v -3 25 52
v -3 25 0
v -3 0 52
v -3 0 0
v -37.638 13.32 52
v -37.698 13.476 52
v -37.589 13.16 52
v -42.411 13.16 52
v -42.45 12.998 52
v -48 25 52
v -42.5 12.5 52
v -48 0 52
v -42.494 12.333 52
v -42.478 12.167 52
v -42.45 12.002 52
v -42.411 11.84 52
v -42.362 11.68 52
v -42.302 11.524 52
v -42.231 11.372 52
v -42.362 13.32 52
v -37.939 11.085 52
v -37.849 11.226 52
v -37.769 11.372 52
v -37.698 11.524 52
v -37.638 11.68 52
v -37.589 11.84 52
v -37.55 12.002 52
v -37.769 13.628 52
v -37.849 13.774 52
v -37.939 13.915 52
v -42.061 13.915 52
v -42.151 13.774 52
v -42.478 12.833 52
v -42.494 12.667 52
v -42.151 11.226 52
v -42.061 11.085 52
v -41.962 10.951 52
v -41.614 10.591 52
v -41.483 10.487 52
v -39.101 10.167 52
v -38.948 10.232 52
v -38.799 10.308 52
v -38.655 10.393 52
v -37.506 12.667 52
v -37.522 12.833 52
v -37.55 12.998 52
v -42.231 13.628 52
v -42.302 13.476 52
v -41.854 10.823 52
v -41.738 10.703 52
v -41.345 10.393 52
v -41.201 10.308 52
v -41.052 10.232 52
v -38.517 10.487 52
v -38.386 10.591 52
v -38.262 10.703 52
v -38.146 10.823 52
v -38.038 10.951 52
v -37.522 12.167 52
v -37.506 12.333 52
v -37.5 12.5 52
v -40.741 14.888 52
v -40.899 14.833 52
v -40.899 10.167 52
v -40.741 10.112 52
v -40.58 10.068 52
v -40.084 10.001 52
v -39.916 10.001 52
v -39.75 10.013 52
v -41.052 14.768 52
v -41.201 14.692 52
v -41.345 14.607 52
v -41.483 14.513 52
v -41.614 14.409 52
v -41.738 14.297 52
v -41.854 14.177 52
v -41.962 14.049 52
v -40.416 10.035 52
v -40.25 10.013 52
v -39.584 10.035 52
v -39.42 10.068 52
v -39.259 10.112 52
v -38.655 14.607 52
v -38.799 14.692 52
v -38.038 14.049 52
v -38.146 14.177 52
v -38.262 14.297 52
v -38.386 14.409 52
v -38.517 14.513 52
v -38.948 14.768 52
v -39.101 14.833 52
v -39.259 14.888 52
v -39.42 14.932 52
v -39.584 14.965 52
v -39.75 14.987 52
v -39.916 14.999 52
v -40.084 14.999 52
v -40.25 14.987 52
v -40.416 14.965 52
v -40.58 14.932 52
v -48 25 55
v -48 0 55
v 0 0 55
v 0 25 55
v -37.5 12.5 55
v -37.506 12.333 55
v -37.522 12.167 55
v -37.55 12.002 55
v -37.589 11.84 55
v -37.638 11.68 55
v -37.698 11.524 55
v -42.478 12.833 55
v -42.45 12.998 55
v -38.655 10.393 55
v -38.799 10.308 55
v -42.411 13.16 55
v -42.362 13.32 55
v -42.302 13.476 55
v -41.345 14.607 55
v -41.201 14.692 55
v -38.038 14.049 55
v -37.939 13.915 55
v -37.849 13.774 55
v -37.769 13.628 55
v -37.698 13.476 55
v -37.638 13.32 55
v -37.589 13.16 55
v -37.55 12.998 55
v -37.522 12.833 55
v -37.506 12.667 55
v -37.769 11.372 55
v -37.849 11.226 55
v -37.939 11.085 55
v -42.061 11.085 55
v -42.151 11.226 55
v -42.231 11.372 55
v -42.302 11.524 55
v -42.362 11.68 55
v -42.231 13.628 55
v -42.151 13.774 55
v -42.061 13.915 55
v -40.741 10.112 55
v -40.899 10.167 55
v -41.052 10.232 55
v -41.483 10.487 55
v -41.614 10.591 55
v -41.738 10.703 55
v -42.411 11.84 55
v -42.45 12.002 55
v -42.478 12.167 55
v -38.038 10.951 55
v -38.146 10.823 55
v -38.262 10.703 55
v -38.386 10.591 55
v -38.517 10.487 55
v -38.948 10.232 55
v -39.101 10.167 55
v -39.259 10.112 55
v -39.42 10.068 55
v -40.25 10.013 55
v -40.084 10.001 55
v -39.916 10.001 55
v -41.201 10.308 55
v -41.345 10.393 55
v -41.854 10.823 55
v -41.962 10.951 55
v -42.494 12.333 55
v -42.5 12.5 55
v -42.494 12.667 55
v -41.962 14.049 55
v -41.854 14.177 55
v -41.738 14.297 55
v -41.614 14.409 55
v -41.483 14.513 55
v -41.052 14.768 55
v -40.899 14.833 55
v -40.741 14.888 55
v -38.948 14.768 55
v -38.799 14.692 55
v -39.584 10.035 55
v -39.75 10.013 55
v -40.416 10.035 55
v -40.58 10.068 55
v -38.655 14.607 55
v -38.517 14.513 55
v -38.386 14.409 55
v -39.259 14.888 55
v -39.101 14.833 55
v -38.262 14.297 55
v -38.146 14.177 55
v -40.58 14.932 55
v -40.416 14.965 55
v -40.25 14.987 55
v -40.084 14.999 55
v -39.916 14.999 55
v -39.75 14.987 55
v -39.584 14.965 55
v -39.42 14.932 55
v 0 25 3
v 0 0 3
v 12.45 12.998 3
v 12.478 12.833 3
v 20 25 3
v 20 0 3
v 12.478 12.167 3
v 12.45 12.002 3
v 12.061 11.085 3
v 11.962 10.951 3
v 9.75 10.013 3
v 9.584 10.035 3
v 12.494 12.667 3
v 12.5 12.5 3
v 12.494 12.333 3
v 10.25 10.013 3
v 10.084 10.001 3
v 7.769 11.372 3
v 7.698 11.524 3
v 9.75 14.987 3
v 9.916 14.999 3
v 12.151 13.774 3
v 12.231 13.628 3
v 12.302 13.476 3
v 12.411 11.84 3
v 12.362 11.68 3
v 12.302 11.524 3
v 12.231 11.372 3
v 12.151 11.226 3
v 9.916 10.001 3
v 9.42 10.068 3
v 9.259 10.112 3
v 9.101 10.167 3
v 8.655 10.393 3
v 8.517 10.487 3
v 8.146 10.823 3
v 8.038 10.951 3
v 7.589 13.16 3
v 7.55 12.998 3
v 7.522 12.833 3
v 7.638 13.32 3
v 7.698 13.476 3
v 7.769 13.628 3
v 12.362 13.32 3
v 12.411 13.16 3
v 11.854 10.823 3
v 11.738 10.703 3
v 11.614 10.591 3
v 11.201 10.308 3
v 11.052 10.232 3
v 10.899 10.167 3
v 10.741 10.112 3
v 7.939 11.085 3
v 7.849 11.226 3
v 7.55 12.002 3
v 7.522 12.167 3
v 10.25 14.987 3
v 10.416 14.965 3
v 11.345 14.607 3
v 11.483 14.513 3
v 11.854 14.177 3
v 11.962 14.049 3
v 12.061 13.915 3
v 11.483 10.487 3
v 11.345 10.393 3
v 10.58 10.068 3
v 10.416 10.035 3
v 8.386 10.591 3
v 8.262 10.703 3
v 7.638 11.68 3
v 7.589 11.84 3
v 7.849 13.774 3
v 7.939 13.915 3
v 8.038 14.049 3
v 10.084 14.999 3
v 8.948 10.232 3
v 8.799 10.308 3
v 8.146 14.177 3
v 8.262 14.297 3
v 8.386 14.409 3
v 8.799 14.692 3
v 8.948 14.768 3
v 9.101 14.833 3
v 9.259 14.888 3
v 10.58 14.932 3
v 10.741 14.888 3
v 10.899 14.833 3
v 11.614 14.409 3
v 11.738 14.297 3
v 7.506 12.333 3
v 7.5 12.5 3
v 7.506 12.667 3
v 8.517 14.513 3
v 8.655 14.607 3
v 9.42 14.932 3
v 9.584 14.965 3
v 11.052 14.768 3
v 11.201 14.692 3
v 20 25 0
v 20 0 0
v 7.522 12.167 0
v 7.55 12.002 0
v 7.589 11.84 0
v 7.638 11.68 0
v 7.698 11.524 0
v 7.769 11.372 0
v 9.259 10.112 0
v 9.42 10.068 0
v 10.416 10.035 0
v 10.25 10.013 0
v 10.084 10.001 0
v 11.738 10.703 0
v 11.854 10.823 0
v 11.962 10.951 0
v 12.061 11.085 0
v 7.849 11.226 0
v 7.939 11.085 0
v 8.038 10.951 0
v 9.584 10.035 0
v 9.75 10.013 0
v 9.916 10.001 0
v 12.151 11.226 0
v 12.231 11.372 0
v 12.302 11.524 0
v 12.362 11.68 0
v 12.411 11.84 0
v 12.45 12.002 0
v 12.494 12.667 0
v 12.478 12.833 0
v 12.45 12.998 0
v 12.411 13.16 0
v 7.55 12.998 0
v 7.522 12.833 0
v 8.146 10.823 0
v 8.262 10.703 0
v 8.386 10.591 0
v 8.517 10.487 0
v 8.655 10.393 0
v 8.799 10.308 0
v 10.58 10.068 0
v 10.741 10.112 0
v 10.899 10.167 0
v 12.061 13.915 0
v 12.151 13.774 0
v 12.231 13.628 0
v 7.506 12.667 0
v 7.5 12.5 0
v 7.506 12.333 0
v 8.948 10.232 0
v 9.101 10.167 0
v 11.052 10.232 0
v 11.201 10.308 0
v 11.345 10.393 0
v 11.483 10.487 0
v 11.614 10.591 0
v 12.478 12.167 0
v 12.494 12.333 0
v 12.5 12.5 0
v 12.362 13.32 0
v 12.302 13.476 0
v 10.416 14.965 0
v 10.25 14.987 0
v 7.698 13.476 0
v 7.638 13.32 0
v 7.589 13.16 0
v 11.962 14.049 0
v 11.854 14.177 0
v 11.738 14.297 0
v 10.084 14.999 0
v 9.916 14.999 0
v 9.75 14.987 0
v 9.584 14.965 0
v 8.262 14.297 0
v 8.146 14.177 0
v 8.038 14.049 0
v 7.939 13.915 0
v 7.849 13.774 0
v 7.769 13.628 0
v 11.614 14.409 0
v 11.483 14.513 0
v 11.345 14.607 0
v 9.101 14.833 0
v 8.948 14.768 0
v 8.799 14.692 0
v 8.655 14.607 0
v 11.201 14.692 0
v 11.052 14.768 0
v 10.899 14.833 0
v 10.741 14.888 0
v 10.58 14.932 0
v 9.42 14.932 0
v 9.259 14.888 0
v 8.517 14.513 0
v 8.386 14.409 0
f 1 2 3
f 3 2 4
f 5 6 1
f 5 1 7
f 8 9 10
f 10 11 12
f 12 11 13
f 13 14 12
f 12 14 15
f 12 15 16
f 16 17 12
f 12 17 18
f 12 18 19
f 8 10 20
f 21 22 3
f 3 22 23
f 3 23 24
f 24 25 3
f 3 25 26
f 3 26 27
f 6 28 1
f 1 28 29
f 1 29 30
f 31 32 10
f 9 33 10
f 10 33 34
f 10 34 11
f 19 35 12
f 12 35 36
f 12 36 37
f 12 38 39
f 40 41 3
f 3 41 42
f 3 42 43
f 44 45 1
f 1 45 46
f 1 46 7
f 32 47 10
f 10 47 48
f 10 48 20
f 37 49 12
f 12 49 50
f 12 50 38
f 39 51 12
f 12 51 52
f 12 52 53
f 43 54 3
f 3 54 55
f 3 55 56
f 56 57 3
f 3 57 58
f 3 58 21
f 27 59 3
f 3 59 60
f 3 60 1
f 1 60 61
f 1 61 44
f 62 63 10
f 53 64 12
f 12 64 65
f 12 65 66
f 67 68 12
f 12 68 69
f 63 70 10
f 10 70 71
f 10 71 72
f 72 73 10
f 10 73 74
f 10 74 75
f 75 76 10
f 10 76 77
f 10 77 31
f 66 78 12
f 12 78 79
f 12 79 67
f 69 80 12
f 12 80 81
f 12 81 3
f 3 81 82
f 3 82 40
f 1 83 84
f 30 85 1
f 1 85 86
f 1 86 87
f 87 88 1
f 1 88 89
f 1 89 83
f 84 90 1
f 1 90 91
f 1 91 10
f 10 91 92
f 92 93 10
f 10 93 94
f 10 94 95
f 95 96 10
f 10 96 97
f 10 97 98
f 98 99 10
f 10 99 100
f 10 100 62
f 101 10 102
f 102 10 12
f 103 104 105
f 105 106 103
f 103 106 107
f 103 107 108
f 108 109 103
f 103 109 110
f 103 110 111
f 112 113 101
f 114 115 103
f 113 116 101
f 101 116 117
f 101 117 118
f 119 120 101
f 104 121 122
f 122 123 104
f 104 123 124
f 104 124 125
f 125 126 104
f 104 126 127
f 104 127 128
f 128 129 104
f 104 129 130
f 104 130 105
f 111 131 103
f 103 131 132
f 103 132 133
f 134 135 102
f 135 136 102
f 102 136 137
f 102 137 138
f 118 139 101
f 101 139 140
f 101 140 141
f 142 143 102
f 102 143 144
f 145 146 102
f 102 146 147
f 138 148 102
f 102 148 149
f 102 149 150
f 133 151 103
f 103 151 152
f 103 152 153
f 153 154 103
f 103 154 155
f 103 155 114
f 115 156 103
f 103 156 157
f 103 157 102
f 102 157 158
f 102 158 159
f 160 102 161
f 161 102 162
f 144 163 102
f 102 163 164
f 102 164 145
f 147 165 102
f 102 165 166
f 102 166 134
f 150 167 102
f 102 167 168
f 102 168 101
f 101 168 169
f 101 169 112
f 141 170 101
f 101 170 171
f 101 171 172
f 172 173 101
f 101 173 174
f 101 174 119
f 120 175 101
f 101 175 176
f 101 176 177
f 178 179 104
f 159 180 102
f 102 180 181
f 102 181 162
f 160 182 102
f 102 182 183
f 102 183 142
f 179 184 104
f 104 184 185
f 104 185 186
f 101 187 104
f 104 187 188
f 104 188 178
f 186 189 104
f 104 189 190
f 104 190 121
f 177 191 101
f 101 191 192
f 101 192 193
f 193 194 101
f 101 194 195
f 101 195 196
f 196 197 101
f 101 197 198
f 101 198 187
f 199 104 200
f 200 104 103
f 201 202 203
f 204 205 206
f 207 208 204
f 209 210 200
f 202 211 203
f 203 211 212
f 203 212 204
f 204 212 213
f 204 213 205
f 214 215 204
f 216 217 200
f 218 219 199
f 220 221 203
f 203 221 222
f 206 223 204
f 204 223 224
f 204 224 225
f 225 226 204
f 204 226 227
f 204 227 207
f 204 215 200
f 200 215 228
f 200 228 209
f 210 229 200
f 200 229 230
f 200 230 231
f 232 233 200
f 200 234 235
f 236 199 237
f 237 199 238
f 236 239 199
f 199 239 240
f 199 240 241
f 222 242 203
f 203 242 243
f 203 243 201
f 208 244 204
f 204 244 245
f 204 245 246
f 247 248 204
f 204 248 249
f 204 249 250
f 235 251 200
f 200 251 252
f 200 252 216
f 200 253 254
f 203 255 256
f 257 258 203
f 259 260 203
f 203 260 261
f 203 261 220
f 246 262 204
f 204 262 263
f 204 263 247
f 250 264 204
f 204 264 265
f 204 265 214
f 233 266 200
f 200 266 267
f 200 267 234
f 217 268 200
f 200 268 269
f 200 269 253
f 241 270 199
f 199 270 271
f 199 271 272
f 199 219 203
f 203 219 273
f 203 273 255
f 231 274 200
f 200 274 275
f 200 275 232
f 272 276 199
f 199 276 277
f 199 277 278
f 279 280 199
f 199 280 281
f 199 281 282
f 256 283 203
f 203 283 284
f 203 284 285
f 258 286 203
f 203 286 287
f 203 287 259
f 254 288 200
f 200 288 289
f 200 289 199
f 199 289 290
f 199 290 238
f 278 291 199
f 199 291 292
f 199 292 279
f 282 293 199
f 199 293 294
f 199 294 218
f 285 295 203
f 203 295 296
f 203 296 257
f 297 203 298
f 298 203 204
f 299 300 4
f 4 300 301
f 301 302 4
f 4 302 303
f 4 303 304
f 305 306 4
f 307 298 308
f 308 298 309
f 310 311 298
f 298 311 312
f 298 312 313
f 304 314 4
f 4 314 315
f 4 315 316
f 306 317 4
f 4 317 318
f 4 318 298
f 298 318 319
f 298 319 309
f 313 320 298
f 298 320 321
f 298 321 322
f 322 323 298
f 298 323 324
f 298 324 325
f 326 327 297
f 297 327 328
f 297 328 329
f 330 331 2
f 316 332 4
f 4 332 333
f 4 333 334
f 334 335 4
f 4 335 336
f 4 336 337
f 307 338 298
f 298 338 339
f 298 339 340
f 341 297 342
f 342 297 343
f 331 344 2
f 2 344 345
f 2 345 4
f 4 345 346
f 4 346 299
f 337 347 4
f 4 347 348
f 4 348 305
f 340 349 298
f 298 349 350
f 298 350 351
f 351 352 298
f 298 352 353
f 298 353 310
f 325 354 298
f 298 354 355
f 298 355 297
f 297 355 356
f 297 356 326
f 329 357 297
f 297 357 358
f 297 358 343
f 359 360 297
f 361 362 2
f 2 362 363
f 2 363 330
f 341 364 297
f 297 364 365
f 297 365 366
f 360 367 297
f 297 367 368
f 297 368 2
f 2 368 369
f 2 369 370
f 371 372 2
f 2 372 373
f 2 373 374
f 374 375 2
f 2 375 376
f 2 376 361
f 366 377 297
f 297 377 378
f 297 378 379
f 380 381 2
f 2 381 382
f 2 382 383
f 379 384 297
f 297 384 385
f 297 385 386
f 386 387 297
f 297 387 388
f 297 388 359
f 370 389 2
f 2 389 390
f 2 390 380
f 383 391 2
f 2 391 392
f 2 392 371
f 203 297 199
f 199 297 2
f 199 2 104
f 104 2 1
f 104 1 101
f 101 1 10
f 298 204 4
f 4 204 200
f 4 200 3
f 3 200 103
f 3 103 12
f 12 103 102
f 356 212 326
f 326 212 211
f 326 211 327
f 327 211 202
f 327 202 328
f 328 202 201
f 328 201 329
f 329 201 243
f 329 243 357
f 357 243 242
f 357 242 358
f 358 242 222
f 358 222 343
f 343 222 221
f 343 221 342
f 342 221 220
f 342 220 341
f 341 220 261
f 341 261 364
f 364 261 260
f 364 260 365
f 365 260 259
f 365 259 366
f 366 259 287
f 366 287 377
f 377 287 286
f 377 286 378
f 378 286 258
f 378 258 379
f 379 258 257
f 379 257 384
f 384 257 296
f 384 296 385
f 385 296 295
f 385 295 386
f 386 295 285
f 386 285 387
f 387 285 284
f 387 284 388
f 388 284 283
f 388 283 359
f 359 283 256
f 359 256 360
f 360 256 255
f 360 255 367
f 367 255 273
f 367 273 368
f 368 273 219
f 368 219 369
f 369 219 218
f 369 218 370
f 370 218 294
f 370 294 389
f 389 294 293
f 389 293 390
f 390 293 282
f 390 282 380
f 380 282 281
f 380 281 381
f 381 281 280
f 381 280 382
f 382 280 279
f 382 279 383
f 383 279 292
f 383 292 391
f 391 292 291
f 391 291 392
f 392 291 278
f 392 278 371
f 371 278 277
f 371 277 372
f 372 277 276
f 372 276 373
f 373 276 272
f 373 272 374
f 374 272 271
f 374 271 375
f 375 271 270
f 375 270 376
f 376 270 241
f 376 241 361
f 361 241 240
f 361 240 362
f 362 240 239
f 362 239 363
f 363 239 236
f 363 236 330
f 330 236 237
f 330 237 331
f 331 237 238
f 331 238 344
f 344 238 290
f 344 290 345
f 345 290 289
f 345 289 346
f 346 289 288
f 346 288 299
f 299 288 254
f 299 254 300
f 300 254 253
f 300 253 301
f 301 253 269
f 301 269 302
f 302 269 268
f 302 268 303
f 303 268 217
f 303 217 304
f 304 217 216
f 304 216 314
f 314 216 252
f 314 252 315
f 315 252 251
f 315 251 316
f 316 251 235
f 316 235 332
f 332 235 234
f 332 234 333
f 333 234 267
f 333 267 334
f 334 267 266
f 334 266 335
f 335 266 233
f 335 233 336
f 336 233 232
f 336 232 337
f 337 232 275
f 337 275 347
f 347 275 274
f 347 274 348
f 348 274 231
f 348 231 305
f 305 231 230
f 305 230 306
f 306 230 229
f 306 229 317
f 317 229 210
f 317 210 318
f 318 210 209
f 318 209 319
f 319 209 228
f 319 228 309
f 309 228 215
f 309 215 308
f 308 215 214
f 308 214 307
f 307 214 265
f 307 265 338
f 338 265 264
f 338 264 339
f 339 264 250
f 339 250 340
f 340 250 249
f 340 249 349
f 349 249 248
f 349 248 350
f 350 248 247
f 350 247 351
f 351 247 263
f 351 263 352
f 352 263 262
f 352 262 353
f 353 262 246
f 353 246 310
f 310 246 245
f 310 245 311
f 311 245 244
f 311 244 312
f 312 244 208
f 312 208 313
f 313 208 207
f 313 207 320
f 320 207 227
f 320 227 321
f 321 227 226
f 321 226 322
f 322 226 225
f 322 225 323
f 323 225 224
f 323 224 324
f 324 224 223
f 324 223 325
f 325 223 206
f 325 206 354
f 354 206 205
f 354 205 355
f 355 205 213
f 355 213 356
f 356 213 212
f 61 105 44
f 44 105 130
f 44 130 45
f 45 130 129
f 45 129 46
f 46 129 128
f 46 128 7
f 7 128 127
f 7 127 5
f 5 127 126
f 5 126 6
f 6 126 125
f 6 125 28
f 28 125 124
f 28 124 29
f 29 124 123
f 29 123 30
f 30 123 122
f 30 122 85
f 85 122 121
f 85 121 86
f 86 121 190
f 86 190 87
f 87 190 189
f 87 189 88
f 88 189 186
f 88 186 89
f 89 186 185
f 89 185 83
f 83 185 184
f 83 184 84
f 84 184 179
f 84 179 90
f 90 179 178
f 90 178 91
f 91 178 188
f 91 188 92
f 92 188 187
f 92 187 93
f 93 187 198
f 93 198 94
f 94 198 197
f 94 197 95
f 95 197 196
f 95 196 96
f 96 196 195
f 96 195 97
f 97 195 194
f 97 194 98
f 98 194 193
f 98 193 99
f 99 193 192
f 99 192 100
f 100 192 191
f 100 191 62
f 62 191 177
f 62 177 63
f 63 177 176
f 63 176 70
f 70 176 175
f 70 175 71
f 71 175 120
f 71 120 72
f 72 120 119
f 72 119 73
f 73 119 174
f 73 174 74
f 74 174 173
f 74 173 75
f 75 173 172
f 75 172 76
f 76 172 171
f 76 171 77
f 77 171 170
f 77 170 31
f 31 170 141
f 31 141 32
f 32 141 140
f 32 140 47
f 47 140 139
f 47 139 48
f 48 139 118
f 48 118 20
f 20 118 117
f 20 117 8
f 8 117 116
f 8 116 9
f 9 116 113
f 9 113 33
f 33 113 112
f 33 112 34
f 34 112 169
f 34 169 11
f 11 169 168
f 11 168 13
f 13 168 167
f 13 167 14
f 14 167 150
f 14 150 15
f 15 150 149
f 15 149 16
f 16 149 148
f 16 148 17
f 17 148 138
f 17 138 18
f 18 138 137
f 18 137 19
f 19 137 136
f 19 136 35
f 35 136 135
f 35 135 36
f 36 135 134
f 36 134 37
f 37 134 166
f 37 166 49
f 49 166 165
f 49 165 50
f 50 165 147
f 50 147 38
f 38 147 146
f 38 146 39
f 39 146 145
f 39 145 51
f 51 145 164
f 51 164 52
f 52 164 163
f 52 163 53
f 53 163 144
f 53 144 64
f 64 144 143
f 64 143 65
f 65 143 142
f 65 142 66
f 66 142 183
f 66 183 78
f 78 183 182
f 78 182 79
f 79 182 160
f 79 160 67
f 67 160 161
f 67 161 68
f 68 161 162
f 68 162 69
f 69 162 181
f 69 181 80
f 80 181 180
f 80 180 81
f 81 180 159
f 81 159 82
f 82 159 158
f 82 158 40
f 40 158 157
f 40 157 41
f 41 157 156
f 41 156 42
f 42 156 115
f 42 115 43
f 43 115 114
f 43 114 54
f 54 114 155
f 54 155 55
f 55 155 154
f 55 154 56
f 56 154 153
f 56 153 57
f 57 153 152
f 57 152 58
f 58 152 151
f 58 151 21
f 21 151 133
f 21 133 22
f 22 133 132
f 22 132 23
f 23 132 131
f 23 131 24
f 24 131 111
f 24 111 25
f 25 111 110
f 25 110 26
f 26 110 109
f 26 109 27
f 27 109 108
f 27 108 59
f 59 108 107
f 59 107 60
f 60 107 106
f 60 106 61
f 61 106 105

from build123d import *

# Parameters (mm, degrees)
BOSS_EXTRUDE1_DEPTH = 25
SKETCH2_R           = 2.5
CUT_EXTRUDE1_DEPTH  = 68


with BuildPart() as part:
    # Sketch1 → Boss-Extrude1 (new body)
    with BuildSketch(Plane(origin=(0, 0, 0), x_dir=(1, 0, 0), z_dir=(0, 1, 0))):
        Polygon((0, 0), (20, 0), (20, -3), (0, -3), (0, -55), (-18, -55), (-48, -55), (-48, -52), (-3, -52), (-3, 0), align=None)
    extrude(amount=BOSS_EXTRUDE1_DEPTH)

    # Sketch2 → Cut-Extrude1 (cut)
    with BuildSketch(Plane.XY.offset(55)):
        with Locations((-40, 12.5)):
            Circle(SKETCH2_R)
        with Locations((10, 12.5)):
            Circle(SKETCH2_R)
    extrude(amount=-CUT_EXTRUDE1_DEPTH, mode=Mode.SUBTRACT)


solid = part.part
